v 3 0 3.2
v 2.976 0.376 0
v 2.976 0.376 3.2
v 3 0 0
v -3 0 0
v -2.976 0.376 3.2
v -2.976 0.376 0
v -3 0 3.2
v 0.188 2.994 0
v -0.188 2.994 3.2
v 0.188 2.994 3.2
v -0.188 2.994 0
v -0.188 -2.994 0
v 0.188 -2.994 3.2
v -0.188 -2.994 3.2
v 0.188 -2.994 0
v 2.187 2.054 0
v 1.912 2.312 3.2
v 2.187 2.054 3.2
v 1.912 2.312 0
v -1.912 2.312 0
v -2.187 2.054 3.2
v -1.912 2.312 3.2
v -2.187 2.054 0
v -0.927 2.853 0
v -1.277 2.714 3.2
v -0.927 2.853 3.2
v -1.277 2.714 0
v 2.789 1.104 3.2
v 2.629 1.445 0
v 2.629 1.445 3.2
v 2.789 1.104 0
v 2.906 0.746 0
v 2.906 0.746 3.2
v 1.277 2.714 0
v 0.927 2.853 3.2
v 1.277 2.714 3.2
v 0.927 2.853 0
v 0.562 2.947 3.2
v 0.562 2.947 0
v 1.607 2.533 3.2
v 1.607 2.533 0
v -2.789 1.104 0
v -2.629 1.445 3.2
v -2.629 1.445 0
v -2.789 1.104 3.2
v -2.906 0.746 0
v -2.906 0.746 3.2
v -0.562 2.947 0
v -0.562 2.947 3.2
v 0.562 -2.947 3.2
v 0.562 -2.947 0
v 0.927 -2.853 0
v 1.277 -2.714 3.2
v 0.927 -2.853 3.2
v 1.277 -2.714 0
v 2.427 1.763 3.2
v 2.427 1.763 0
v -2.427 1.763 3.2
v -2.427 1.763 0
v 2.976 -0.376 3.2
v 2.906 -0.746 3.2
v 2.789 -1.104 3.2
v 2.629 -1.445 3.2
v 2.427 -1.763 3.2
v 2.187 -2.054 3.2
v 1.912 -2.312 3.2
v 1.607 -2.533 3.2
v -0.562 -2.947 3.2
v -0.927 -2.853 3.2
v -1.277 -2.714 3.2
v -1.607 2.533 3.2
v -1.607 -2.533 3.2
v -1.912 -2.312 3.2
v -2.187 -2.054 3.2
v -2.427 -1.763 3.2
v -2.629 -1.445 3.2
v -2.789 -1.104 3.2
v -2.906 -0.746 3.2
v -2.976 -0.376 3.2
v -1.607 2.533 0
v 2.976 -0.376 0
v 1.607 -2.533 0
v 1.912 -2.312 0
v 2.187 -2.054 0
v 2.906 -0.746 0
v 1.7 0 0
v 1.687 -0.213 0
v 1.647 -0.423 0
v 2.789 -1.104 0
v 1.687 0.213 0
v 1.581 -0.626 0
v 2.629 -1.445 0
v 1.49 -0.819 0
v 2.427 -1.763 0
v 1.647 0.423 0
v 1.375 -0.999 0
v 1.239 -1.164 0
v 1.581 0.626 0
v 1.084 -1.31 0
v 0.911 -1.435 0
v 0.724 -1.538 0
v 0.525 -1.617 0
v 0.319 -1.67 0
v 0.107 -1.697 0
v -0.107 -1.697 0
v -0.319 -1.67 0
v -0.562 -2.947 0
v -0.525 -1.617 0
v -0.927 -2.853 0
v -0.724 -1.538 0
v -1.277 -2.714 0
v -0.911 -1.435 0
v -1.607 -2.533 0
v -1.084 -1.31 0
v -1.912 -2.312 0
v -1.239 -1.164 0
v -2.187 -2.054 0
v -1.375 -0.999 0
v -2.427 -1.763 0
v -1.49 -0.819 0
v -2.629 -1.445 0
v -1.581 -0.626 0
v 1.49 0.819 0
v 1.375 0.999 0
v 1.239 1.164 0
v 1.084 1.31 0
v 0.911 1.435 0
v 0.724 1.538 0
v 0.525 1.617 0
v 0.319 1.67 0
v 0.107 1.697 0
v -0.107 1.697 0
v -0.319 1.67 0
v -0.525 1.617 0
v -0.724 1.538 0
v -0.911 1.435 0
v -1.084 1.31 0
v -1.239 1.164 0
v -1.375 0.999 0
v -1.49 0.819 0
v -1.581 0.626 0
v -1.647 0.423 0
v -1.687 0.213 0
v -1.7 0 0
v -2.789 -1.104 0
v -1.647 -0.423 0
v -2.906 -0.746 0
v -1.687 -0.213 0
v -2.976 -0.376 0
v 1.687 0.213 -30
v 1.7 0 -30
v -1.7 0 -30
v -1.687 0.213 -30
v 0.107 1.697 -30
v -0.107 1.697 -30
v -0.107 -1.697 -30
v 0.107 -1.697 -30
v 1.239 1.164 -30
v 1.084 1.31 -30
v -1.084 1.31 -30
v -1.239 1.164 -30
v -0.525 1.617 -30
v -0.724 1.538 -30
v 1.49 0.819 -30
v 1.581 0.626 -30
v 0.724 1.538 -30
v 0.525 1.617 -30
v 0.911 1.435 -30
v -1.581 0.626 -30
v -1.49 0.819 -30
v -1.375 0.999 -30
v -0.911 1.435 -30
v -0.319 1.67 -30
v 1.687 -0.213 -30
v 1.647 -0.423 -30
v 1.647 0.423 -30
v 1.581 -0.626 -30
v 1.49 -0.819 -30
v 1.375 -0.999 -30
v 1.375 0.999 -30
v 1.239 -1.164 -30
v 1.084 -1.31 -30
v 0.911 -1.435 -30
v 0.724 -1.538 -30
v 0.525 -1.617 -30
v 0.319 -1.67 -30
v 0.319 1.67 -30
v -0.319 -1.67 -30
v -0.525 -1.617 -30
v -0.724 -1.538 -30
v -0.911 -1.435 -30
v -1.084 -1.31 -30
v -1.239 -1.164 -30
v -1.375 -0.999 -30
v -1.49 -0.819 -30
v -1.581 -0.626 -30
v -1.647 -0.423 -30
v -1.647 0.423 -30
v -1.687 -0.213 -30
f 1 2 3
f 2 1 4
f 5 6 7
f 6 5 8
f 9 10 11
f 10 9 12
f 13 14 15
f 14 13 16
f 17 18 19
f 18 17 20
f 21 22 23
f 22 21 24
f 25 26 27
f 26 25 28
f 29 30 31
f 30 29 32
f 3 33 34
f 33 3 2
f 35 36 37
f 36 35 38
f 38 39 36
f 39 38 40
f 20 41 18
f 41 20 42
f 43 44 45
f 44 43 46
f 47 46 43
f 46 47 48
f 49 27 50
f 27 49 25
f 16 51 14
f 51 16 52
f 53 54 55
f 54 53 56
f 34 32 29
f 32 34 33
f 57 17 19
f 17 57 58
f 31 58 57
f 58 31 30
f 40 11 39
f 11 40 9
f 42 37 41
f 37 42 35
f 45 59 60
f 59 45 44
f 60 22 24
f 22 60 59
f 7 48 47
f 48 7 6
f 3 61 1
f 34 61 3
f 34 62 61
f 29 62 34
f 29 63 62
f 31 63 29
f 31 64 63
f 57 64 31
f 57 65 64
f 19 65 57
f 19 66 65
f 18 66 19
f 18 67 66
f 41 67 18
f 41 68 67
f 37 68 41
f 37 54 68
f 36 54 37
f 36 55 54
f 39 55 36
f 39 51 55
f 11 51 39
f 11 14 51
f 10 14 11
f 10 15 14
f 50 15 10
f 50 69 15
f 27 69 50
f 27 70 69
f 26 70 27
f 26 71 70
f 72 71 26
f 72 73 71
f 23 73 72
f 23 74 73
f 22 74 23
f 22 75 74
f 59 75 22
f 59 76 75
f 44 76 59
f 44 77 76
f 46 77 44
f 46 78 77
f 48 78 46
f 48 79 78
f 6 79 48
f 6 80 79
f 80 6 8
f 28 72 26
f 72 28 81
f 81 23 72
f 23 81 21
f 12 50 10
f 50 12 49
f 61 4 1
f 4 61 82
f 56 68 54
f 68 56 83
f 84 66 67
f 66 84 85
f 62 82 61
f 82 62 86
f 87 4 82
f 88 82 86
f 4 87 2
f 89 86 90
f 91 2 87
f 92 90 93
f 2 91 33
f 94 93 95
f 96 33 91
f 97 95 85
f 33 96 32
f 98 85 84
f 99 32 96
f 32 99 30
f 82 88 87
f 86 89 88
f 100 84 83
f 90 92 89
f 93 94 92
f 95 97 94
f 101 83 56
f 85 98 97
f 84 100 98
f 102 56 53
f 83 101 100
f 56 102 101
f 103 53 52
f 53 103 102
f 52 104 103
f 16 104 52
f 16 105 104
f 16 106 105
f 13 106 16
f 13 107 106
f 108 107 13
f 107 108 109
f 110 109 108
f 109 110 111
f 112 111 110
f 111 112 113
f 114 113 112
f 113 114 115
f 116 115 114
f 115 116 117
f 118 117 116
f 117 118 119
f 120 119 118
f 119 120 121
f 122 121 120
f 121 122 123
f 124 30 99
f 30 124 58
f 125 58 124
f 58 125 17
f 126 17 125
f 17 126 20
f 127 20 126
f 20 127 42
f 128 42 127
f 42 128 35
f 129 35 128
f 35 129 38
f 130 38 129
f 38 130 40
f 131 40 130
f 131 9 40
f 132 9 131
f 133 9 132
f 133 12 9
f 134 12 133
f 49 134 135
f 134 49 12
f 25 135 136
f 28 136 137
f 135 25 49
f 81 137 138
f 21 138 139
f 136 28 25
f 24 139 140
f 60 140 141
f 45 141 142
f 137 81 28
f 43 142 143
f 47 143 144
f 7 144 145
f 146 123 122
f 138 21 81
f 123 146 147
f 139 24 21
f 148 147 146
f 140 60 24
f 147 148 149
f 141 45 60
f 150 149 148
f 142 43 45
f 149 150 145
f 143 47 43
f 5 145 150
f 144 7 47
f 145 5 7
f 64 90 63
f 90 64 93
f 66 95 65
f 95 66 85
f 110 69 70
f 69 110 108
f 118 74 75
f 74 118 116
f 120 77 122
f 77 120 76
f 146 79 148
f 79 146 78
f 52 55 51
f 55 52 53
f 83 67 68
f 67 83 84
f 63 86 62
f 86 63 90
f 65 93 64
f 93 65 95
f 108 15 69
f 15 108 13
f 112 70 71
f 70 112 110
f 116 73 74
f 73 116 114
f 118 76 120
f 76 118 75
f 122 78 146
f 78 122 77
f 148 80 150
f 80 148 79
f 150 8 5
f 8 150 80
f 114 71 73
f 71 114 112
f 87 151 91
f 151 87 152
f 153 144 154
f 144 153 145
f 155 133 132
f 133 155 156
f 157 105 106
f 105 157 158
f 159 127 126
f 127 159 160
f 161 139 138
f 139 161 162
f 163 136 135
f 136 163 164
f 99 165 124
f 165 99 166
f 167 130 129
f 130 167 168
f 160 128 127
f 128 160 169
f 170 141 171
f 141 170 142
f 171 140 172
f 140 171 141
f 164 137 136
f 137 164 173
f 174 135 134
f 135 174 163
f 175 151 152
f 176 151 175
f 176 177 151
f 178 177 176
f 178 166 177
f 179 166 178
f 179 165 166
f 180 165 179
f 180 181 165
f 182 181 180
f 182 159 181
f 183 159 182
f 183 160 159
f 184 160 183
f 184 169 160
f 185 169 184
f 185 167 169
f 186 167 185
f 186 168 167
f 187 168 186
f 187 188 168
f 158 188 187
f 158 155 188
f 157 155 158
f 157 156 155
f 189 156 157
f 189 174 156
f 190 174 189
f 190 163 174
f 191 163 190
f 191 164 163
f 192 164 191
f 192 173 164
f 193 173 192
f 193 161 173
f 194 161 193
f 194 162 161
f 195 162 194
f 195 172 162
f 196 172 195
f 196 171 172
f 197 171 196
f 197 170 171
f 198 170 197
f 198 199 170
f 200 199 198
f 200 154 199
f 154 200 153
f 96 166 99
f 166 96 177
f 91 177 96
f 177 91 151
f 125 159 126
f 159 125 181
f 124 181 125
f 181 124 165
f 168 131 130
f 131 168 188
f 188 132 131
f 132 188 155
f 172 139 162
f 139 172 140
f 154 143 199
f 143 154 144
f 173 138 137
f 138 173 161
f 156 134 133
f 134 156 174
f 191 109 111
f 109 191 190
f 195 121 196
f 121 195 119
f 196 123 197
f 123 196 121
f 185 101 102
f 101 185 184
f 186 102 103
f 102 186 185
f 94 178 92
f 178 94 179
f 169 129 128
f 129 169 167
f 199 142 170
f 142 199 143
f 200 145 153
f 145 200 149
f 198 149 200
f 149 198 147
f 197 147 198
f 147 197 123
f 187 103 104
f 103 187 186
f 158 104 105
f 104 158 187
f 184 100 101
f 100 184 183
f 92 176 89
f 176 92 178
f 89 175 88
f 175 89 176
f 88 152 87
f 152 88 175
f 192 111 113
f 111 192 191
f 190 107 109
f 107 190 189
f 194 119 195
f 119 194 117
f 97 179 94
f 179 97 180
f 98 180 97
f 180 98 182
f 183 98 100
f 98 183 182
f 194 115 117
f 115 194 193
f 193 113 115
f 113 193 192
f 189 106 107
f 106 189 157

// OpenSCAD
$fn = 50;


difference() {
	union() {
		translate(v = [0, 0, 0]) {
			rotate(a = [0, 0, 0]) {
				cylinder(h = 3.2000000000, r = 3.0000000000);
			}
		}
		translate(v = [0, 0, -30]) {
			rotate(a = [0, 0, 0]) {
				cylinder(h = 30, r = 1.7000000000);
			}
		}
	}
	union();
}
